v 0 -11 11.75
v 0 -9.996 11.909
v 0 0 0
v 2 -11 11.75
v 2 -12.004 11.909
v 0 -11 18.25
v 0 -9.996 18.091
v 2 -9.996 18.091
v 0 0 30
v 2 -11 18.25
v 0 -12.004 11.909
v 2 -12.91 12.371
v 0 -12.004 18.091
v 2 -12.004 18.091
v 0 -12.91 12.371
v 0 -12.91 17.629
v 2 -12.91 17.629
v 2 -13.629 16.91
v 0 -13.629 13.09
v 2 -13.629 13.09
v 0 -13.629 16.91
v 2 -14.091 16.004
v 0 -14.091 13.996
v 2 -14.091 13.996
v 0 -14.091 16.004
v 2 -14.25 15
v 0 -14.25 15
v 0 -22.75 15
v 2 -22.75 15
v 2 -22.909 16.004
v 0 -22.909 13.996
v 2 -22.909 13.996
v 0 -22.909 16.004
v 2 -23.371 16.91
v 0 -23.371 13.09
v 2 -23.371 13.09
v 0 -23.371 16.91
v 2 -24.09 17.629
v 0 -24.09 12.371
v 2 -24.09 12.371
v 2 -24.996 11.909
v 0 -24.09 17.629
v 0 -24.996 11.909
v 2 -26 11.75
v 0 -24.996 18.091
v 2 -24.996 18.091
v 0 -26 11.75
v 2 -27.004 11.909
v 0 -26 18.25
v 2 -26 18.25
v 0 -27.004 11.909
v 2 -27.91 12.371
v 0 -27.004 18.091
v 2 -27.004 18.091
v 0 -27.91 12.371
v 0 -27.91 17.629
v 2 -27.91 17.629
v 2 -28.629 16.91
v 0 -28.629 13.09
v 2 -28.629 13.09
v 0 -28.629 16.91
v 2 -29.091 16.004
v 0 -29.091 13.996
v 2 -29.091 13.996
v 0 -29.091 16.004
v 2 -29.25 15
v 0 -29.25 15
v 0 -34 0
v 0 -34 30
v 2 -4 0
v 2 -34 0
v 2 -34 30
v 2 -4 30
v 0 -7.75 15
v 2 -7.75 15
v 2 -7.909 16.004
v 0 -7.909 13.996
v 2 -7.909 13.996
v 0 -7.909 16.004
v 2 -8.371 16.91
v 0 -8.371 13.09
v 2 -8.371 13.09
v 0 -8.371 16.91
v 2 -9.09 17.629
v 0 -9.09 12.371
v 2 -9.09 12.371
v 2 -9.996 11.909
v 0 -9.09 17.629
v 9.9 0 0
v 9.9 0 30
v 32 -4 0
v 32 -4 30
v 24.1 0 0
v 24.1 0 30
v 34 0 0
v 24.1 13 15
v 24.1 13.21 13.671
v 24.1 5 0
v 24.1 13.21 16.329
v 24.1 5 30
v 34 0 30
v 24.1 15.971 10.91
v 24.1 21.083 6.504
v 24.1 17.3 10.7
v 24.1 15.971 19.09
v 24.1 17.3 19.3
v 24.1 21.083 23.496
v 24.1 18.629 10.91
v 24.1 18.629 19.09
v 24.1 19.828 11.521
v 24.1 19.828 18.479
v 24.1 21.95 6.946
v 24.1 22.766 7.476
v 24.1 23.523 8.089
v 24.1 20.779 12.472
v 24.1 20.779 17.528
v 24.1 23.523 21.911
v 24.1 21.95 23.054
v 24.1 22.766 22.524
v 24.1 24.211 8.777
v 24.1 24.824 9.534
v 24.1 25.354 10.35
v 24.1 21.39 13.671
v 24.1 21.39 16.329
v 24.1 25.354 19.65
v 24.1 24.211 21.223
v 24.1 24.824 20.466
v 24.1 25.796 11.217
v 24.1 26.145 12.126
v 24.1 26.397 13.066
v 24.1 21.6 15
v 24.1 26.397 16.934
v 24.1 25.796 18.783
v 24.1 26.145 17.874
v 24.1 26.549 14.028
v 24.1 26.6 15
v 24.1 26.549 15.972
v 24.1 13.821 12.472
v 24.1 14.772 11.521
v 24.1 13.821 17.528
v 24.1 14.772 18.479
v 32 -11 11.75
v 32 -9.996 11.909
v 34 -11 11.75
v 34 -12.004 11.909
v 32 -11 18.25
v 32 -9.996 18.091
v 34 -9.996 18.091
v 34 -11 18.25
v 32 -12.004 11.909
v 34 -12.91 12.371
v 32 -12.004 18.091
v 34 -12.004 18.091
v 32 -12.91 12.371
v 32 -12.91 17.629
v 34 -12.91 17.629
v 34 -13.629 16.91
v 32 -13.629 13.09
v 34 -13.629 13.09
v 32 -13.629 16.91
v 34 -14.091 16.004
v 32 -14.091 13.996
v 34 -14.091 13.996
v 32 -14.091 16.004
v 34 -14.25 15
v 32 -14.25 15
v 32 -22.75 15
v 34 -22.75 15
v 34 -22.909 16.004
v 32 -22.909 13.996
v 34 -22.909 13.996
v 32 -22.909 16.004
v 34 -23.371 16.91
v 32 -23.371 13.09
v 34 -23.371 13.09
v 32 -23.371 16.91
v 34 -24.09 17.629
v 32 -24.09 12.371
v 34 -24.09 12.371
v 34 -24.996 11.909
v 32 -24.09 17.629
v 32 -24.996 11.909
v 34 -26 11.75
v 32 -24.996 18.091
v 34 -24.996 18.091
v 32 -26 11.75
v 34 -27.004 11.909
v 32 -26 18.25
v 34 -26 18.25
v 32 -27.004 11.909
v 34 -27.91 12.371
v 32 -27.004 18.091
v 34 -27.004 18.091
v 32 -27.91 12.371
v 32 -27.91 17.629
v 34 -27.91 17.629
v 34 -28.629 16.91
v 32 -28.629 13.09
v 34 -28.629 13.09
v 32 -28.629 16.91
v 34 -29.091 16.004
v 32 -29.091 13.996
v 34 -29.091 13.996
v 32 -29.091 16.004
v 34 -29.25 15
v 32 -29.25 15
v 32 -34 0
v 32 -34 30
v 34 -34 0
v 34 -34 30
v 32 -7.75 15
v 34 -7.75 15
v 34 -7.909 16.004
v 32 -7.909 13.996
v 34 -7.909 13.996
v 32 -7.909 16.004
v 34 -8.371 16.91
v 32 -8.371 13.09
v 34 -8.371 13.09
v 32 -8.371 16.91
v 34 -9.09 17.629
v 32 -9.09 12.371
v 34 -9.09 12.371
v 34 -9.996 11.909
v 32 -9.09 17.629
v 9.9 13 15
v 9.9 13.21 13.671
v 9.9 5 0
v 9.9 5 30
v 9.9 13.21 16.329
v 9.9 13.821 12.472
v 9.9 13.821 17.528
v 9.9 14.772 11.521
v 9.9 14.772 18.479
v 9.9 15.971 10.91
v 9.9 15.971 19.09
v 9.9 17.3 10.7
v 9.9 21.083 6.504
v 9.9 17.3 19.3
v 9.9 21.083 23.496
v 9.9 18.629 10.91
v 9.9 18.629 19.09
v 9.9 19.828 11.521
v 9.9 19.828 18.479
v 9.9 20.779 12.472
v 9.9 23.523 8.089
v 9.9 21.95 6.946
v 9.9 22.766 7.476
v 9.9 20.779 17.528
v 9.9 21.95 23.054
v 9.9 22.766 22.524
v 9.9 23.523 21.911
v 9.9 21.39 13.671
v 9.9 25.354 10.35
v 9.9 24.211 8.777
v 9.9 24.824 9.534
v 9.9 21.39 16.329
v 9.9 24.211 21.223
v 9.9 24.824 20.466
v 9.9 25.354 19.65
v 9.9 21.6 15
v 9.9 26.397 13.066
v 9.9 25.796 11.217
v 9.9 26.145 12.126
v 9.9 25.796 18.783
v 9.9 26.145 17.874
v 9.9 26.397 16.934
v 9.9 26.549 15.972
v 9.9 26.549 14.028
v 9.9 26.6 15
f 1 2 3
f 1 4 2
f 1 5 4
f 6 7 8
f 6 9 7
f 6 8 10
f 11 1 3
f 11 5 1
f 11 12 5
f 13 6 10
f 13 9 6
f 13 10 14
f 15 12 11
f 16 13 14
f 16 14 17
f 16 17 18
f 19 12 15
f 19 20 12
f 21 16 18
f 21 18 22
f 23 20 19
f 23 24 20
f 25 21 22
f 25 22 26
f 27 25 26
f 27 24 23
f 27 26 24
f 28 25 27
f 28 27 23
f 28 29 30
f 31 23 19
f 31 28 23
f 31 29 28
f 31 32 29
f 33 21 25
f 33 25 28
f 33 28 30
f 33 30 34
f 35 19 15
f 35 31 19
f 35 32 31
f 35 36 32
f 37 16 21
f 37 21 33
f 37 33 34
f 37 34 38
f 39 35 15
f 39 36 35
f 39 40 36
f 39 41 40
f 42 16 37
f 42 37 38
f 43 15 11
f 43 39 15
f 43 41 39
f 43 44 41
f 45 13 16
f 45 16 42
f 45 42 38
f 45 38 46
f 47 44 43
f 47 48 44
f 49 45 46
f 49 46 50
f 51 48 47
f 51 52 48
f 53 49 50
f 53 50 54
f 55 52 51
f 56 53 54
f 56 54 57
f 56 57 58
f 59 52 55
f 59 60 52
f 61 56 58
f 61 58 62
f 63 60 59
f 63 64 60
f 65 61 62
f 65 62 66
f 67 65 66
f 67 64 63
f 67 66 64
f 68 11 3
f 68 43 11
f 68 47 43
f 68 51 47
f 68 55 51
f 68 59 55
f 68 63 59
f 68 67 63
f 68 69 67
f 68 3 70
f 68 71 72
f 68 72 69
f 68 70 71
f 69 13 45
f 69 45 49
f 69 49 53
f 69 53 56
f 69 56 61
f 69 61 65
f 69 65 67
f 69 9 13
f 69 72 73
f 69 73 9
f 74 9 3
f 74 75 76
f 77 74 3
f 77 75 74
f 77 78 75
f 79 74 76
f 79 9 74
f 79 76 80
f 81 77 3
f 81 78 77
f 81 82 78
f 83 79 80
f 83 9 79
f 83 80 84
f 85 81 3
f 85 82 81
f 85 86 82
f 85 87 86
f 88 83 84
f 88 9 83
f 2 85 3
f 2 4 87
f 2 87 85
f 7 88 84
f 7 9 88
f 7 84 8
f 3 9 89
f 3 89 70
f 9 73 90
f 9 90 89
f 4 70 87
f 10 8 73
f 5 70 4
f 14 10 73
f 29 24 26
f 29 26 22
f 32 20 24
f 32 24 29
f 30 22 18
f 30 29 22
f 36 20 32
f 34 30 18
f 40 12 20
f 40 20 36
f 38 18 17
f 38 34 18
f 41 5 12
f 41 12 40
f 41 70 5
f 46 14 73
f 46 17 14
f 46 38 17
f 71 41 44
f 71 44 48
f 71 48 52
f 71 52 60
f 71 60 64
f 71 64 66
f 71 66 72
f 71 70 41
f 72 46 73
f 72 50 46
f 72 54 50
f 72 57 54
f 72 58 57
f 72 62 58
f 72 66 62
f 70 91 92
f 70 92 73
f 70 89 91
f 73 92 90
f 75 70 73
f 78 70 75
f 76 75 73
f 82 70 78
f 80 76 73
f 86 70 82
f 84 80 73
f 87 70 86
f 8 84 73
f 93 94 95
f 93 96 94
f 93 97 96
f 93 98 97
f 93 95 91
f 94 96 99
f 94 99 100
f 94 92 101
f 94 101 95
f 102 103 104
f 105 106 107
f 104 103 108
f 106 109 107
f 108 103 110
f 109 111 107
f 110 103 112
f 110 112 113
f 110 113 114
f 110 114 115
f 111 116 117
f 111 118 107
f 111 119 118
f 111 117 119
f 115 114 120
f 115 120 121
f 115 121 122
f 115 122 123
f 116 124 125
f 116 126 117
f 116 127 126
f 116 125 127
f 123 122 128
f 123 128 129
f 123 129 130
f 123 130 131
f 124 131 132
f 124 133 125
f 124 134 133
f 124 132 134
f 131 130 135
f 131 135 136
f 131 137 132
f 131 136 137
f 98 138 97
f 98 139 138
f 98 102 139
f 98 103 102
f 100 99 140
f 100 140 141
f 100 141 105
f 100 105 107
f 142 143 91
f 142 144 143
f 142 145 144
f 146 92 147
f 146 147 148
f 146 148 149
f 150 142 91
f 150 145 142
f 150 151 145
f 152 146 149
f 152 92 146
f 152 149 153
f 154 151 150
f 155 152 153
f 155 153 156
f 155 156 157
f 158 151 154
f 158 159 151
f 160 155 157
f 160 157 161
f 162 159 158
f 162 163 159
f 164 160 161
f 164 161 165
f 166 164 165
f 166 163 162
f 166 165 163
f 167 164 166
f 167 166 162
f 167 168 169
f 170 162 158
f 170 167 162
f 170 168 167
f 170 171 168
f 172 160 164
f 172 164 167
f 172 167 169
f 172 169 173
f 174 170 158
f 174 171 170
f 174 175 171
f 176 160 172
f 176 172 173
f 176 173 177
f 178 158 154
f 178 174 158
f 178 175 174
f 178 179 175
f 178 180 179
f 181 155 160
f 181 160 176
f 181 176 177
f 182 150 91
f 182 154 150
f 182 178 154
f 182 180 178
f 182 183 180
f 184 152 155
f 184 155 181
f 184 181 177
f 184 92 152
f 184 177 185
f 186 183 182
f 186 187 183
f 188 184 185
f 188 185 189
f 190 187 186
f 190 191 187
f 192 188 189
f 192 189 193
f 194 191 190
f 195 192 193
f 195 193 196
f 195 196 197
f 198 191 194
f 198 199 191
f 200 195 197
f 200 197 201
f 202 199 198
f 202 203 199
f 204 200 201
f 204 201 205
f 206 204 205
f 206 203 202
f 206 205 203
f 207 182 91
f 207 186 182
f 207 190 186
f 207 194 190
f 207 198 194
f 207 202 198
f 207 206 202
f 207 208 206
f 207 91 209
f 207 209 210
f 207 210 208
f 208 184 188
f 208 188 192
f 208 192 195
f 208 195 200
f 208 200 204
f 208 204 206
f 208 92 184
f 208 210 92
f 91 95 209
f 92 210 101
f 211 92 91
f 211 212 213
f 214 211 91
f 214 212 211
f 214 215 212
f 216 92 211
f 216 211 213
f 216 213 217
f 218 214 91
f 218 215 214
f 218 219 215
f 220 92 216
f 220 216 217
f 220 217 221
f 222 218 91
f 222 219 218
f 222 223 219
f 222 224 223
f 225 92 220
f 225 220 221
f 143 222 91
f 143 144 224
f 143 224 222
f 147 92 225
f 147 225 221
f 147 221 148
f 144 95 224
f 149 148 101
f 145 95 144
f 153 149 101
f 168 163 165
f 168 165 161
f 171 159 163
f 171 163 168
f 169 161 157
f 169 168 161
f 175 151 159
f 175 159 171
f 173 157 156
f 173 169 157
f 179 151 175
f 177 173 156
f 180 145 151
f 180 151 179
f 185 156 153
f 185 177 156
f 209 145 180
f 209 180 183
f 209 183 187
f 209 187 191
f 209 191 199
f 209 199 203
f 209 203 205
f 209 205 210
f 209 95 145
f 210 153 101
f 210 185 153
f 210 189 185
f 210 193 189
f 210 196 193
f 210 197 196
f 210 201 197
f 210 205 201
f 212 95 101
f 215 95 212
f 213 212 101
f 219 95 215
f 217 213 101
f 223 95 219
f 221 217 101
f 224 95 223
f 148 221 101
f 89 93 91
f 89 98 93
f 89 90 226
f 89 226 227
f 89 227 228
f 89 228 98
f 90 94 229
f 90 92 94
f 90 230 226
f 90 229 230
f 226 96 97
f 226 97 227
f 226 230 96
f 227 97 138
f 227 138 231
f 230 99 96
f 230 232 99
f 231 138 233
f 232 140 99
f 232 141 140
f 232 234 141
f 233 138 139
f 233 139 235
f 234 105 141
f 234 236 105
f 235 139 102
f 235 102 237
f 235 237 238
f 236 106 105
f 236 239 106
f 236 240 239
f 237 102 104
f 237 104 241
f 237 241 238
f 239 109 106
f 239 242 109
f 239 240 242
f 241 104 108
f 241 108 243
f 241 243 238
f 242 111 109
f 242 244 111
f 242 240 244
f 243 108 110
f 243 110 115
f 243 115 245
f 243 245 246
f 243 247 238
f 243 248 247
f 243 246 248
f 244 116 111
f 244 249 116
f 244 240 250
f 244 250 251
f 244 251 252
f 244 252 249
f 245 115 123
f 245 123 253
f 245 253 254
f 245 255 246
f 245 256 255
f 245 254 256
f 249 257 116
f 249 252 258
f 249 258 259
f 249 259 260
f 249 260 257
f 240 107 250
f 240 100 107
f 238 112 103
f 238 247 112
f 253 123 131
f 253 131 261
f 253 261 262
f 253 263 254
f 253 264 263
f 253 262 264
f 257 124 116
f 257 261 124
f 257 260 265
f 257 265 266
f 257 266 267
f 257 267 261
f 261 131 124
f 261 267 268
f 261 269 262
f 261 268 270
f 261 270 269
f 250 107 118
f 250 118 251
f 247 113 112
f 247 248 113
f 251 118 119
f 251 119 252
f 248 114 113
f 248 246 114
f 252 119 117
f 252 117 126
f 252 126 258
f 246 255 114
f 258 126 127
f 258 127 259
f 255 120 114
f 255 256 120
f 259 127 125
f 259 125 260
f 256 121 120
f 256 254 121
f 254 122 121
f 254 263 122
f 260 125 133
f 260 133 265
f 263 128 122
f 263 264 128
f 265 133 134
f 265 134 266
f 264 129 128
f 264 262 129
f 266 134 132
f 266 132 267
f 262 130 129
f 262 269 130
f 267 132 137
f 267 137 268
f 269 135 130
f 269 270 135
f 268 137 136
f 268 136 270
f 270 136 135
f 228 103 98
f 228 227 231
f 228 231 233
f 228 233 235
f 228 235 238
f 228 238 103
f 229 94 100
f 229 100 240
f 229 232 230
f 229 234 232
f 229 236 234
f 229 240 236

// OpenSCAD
// file: ../lib/ALU_profile_holder_top.scad
include <../../parameters.scad>



module ALU_profile_holder_top() {
    wall_thickness = ALU_profile_holder_wall_thickness;
    
    module screw_holes() {
        translate([wall_thickness/2, 8, ALU_profile_width/2]) {
            rotate([0, 90, 0]) 
                cylinder(d=M6_screw_diameter, h=wall_thickness*2, center=true, $fn=20);
            
            translate([0, 15, 0])
                rotate([0, 90, 0])
                cylinder(d=M6_screw_diameter, h=wall_thickness*2, center=true, $fn=20);
            
        }
    }
    
    difference() {
        cube([ALU_profile_width+wall_thickness*2, ALU_profile_width+wall_thickness*2, ALU_profile_width]);
        translate([wall_thickness, 0, 0])
            cube([ALU_profile_width, ALU_profile_width, ALU_profile_width]);
        
        screw_holes();
        translate([ALU_profile_width+wall_thickness, 0, 0])
            screw_holes();
    }
}

ALU_profile_holder_top();
// main file
include <../../parameters.scad>
use <../lib/ALU_profile_holder_top.scad>


    
module 888_5004() {
    podlozka = 0.8; //tloušťka podložky
    
    translate([0, -ALU_profile_width-ALU_profile_holder_wall_thickness*2, 0])
        ALU_profile_holder_top();
    
    translate([ALU_profile_width/2+ALU_profile_holder_wall_thickness-(ALU_profile_width+ALU_profile_holder_wall_thickness*2-(608_bearing_thickness*2+podlozka*2+4))/2, 0, 0])
        difference() {
            hull() {
                cube([ALU_profile_width+ALU_profile_holder_wall_thickness*2-(608_bearing_thickness*2+podlozka*2+4), 5, ALU_profile_width]);
                
                translate([0, 608_bearing_outer_diameter-5, ALU_profile_width/2])
                    rotate([0, 90, 0])
                        cylinder(d=M8_screw_diameter+10, h=ALU_profile_width+ALU_profile_holder_wall_thickness*2-(608_bearing_thickness*2+podlozka*2+4), $fn=60);
            }
            
            translate([0, 608_bearing_outer_diameter-5, ALU_profile_width/2])
                rotate([0, 90, 0])
                    cylinder(d=M8_screw_diameter, h=ALU_profile_width+ALU_profile_holder_wall_thickness*2-(608_bearing_thickness*2+podlozka*2+4), $fn=20);
        }
}
888_5004();
